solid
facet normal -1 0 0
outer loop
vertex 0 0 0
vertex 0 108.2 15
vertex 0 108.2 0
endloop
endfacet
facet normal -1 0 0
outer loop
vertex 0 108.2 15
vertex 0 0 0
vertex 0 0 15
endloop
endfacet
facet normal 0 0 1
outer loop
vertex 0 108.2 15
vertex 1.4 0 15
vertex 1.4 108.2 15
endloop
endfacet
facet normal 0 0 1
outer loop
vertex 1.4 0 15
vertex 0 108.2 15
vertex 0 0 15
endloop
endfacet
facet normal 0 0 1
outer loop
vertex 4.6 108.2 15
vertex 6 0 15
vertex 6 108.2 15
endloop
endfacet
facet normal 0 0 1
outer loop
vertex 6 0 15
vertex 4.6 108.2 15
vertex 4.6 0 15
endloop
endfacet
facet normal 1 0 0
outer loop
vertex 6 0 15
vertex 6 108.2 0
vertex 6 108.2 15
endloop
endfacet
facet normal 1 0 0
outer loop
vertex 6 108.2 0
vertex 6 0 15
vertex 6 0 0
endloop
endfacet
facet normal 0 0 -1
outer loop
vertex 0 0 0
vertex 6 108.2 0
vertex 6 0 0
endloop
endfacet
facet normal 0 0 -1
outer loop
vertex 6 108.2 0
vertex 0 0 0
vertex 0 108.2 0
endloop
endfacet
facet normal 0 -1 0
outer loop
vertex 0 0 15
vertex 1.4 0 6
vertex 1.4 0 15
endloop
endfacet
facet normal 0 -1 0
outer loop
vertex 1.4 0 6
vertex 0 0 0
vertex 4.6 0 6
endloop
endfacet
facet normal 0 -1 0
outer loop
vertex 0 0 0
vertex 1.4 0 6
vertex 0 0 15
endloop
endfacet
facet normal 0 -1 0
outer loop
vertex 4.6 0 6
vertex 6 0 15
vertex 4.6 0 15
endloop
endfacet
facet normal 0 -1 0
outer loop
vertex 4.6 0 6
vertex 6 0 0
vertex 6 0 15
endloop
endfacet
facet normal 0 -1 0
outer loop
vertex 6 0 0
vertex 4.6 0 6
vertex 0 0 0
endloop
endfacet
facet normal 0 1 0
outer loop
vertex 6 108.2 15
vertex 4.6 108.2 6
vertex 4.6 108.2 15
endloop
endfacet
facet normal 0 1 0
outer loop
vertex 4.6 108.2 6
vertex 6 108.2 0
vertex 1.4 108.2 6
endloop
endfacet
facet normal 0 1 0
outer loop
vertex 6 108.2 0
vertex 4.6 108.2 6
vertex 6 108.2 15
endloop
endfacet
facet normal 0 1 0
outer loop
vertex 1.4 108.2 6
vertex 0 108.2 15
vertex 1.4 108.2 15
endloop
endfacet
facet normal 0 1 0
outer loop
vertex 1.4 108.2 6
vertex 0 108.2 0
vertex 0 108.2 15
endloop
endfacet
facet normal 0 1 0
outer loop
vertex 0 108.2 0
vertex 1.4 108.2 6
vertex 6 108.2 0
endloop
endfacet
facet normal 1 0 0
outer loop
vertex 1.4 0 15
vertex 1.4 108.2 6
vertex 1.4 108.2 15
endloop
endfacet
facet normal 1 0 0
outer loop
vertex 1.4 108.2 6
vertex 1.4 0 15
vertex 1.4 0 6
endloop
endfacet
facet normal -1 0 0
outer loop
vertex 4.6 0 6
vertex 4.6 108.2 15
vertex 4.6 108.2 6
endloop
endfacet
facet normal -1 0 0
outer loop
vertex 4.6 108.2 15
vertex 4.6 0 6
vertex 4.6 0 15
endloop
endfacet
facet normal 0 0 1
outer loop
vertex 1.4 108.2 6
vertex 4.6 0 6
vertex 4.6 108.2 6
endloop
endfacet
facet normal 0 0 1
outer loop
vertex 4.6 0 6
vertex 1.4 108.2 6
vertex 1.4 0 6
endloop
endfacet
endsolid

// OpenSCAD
01_Main_Dim = 108.2;
02_Width = 6;
03_Height = 15;
04_Slot_Width = 3;
05_Slot_Depth = 9;
06_Clearance = 0.1;
BigNum = 9999;
SmallNum = .01;
Slot_x = (02_Width-04_Slot_Width-06_Clearance*2)/2;

Text_Height = 10;
Text_Thick = 15;

difference()
	{
	
    // Main body
        cube([ 02_Width, 01_Main_Dim, 03_Height]);
	
        translate([Slot_x, -SmallNum, 03_Height-05_Slot_Depth])
		cube([04_Slot_Width+06_Clearance*2, BigNum, BigNum]);
        
	
	}
